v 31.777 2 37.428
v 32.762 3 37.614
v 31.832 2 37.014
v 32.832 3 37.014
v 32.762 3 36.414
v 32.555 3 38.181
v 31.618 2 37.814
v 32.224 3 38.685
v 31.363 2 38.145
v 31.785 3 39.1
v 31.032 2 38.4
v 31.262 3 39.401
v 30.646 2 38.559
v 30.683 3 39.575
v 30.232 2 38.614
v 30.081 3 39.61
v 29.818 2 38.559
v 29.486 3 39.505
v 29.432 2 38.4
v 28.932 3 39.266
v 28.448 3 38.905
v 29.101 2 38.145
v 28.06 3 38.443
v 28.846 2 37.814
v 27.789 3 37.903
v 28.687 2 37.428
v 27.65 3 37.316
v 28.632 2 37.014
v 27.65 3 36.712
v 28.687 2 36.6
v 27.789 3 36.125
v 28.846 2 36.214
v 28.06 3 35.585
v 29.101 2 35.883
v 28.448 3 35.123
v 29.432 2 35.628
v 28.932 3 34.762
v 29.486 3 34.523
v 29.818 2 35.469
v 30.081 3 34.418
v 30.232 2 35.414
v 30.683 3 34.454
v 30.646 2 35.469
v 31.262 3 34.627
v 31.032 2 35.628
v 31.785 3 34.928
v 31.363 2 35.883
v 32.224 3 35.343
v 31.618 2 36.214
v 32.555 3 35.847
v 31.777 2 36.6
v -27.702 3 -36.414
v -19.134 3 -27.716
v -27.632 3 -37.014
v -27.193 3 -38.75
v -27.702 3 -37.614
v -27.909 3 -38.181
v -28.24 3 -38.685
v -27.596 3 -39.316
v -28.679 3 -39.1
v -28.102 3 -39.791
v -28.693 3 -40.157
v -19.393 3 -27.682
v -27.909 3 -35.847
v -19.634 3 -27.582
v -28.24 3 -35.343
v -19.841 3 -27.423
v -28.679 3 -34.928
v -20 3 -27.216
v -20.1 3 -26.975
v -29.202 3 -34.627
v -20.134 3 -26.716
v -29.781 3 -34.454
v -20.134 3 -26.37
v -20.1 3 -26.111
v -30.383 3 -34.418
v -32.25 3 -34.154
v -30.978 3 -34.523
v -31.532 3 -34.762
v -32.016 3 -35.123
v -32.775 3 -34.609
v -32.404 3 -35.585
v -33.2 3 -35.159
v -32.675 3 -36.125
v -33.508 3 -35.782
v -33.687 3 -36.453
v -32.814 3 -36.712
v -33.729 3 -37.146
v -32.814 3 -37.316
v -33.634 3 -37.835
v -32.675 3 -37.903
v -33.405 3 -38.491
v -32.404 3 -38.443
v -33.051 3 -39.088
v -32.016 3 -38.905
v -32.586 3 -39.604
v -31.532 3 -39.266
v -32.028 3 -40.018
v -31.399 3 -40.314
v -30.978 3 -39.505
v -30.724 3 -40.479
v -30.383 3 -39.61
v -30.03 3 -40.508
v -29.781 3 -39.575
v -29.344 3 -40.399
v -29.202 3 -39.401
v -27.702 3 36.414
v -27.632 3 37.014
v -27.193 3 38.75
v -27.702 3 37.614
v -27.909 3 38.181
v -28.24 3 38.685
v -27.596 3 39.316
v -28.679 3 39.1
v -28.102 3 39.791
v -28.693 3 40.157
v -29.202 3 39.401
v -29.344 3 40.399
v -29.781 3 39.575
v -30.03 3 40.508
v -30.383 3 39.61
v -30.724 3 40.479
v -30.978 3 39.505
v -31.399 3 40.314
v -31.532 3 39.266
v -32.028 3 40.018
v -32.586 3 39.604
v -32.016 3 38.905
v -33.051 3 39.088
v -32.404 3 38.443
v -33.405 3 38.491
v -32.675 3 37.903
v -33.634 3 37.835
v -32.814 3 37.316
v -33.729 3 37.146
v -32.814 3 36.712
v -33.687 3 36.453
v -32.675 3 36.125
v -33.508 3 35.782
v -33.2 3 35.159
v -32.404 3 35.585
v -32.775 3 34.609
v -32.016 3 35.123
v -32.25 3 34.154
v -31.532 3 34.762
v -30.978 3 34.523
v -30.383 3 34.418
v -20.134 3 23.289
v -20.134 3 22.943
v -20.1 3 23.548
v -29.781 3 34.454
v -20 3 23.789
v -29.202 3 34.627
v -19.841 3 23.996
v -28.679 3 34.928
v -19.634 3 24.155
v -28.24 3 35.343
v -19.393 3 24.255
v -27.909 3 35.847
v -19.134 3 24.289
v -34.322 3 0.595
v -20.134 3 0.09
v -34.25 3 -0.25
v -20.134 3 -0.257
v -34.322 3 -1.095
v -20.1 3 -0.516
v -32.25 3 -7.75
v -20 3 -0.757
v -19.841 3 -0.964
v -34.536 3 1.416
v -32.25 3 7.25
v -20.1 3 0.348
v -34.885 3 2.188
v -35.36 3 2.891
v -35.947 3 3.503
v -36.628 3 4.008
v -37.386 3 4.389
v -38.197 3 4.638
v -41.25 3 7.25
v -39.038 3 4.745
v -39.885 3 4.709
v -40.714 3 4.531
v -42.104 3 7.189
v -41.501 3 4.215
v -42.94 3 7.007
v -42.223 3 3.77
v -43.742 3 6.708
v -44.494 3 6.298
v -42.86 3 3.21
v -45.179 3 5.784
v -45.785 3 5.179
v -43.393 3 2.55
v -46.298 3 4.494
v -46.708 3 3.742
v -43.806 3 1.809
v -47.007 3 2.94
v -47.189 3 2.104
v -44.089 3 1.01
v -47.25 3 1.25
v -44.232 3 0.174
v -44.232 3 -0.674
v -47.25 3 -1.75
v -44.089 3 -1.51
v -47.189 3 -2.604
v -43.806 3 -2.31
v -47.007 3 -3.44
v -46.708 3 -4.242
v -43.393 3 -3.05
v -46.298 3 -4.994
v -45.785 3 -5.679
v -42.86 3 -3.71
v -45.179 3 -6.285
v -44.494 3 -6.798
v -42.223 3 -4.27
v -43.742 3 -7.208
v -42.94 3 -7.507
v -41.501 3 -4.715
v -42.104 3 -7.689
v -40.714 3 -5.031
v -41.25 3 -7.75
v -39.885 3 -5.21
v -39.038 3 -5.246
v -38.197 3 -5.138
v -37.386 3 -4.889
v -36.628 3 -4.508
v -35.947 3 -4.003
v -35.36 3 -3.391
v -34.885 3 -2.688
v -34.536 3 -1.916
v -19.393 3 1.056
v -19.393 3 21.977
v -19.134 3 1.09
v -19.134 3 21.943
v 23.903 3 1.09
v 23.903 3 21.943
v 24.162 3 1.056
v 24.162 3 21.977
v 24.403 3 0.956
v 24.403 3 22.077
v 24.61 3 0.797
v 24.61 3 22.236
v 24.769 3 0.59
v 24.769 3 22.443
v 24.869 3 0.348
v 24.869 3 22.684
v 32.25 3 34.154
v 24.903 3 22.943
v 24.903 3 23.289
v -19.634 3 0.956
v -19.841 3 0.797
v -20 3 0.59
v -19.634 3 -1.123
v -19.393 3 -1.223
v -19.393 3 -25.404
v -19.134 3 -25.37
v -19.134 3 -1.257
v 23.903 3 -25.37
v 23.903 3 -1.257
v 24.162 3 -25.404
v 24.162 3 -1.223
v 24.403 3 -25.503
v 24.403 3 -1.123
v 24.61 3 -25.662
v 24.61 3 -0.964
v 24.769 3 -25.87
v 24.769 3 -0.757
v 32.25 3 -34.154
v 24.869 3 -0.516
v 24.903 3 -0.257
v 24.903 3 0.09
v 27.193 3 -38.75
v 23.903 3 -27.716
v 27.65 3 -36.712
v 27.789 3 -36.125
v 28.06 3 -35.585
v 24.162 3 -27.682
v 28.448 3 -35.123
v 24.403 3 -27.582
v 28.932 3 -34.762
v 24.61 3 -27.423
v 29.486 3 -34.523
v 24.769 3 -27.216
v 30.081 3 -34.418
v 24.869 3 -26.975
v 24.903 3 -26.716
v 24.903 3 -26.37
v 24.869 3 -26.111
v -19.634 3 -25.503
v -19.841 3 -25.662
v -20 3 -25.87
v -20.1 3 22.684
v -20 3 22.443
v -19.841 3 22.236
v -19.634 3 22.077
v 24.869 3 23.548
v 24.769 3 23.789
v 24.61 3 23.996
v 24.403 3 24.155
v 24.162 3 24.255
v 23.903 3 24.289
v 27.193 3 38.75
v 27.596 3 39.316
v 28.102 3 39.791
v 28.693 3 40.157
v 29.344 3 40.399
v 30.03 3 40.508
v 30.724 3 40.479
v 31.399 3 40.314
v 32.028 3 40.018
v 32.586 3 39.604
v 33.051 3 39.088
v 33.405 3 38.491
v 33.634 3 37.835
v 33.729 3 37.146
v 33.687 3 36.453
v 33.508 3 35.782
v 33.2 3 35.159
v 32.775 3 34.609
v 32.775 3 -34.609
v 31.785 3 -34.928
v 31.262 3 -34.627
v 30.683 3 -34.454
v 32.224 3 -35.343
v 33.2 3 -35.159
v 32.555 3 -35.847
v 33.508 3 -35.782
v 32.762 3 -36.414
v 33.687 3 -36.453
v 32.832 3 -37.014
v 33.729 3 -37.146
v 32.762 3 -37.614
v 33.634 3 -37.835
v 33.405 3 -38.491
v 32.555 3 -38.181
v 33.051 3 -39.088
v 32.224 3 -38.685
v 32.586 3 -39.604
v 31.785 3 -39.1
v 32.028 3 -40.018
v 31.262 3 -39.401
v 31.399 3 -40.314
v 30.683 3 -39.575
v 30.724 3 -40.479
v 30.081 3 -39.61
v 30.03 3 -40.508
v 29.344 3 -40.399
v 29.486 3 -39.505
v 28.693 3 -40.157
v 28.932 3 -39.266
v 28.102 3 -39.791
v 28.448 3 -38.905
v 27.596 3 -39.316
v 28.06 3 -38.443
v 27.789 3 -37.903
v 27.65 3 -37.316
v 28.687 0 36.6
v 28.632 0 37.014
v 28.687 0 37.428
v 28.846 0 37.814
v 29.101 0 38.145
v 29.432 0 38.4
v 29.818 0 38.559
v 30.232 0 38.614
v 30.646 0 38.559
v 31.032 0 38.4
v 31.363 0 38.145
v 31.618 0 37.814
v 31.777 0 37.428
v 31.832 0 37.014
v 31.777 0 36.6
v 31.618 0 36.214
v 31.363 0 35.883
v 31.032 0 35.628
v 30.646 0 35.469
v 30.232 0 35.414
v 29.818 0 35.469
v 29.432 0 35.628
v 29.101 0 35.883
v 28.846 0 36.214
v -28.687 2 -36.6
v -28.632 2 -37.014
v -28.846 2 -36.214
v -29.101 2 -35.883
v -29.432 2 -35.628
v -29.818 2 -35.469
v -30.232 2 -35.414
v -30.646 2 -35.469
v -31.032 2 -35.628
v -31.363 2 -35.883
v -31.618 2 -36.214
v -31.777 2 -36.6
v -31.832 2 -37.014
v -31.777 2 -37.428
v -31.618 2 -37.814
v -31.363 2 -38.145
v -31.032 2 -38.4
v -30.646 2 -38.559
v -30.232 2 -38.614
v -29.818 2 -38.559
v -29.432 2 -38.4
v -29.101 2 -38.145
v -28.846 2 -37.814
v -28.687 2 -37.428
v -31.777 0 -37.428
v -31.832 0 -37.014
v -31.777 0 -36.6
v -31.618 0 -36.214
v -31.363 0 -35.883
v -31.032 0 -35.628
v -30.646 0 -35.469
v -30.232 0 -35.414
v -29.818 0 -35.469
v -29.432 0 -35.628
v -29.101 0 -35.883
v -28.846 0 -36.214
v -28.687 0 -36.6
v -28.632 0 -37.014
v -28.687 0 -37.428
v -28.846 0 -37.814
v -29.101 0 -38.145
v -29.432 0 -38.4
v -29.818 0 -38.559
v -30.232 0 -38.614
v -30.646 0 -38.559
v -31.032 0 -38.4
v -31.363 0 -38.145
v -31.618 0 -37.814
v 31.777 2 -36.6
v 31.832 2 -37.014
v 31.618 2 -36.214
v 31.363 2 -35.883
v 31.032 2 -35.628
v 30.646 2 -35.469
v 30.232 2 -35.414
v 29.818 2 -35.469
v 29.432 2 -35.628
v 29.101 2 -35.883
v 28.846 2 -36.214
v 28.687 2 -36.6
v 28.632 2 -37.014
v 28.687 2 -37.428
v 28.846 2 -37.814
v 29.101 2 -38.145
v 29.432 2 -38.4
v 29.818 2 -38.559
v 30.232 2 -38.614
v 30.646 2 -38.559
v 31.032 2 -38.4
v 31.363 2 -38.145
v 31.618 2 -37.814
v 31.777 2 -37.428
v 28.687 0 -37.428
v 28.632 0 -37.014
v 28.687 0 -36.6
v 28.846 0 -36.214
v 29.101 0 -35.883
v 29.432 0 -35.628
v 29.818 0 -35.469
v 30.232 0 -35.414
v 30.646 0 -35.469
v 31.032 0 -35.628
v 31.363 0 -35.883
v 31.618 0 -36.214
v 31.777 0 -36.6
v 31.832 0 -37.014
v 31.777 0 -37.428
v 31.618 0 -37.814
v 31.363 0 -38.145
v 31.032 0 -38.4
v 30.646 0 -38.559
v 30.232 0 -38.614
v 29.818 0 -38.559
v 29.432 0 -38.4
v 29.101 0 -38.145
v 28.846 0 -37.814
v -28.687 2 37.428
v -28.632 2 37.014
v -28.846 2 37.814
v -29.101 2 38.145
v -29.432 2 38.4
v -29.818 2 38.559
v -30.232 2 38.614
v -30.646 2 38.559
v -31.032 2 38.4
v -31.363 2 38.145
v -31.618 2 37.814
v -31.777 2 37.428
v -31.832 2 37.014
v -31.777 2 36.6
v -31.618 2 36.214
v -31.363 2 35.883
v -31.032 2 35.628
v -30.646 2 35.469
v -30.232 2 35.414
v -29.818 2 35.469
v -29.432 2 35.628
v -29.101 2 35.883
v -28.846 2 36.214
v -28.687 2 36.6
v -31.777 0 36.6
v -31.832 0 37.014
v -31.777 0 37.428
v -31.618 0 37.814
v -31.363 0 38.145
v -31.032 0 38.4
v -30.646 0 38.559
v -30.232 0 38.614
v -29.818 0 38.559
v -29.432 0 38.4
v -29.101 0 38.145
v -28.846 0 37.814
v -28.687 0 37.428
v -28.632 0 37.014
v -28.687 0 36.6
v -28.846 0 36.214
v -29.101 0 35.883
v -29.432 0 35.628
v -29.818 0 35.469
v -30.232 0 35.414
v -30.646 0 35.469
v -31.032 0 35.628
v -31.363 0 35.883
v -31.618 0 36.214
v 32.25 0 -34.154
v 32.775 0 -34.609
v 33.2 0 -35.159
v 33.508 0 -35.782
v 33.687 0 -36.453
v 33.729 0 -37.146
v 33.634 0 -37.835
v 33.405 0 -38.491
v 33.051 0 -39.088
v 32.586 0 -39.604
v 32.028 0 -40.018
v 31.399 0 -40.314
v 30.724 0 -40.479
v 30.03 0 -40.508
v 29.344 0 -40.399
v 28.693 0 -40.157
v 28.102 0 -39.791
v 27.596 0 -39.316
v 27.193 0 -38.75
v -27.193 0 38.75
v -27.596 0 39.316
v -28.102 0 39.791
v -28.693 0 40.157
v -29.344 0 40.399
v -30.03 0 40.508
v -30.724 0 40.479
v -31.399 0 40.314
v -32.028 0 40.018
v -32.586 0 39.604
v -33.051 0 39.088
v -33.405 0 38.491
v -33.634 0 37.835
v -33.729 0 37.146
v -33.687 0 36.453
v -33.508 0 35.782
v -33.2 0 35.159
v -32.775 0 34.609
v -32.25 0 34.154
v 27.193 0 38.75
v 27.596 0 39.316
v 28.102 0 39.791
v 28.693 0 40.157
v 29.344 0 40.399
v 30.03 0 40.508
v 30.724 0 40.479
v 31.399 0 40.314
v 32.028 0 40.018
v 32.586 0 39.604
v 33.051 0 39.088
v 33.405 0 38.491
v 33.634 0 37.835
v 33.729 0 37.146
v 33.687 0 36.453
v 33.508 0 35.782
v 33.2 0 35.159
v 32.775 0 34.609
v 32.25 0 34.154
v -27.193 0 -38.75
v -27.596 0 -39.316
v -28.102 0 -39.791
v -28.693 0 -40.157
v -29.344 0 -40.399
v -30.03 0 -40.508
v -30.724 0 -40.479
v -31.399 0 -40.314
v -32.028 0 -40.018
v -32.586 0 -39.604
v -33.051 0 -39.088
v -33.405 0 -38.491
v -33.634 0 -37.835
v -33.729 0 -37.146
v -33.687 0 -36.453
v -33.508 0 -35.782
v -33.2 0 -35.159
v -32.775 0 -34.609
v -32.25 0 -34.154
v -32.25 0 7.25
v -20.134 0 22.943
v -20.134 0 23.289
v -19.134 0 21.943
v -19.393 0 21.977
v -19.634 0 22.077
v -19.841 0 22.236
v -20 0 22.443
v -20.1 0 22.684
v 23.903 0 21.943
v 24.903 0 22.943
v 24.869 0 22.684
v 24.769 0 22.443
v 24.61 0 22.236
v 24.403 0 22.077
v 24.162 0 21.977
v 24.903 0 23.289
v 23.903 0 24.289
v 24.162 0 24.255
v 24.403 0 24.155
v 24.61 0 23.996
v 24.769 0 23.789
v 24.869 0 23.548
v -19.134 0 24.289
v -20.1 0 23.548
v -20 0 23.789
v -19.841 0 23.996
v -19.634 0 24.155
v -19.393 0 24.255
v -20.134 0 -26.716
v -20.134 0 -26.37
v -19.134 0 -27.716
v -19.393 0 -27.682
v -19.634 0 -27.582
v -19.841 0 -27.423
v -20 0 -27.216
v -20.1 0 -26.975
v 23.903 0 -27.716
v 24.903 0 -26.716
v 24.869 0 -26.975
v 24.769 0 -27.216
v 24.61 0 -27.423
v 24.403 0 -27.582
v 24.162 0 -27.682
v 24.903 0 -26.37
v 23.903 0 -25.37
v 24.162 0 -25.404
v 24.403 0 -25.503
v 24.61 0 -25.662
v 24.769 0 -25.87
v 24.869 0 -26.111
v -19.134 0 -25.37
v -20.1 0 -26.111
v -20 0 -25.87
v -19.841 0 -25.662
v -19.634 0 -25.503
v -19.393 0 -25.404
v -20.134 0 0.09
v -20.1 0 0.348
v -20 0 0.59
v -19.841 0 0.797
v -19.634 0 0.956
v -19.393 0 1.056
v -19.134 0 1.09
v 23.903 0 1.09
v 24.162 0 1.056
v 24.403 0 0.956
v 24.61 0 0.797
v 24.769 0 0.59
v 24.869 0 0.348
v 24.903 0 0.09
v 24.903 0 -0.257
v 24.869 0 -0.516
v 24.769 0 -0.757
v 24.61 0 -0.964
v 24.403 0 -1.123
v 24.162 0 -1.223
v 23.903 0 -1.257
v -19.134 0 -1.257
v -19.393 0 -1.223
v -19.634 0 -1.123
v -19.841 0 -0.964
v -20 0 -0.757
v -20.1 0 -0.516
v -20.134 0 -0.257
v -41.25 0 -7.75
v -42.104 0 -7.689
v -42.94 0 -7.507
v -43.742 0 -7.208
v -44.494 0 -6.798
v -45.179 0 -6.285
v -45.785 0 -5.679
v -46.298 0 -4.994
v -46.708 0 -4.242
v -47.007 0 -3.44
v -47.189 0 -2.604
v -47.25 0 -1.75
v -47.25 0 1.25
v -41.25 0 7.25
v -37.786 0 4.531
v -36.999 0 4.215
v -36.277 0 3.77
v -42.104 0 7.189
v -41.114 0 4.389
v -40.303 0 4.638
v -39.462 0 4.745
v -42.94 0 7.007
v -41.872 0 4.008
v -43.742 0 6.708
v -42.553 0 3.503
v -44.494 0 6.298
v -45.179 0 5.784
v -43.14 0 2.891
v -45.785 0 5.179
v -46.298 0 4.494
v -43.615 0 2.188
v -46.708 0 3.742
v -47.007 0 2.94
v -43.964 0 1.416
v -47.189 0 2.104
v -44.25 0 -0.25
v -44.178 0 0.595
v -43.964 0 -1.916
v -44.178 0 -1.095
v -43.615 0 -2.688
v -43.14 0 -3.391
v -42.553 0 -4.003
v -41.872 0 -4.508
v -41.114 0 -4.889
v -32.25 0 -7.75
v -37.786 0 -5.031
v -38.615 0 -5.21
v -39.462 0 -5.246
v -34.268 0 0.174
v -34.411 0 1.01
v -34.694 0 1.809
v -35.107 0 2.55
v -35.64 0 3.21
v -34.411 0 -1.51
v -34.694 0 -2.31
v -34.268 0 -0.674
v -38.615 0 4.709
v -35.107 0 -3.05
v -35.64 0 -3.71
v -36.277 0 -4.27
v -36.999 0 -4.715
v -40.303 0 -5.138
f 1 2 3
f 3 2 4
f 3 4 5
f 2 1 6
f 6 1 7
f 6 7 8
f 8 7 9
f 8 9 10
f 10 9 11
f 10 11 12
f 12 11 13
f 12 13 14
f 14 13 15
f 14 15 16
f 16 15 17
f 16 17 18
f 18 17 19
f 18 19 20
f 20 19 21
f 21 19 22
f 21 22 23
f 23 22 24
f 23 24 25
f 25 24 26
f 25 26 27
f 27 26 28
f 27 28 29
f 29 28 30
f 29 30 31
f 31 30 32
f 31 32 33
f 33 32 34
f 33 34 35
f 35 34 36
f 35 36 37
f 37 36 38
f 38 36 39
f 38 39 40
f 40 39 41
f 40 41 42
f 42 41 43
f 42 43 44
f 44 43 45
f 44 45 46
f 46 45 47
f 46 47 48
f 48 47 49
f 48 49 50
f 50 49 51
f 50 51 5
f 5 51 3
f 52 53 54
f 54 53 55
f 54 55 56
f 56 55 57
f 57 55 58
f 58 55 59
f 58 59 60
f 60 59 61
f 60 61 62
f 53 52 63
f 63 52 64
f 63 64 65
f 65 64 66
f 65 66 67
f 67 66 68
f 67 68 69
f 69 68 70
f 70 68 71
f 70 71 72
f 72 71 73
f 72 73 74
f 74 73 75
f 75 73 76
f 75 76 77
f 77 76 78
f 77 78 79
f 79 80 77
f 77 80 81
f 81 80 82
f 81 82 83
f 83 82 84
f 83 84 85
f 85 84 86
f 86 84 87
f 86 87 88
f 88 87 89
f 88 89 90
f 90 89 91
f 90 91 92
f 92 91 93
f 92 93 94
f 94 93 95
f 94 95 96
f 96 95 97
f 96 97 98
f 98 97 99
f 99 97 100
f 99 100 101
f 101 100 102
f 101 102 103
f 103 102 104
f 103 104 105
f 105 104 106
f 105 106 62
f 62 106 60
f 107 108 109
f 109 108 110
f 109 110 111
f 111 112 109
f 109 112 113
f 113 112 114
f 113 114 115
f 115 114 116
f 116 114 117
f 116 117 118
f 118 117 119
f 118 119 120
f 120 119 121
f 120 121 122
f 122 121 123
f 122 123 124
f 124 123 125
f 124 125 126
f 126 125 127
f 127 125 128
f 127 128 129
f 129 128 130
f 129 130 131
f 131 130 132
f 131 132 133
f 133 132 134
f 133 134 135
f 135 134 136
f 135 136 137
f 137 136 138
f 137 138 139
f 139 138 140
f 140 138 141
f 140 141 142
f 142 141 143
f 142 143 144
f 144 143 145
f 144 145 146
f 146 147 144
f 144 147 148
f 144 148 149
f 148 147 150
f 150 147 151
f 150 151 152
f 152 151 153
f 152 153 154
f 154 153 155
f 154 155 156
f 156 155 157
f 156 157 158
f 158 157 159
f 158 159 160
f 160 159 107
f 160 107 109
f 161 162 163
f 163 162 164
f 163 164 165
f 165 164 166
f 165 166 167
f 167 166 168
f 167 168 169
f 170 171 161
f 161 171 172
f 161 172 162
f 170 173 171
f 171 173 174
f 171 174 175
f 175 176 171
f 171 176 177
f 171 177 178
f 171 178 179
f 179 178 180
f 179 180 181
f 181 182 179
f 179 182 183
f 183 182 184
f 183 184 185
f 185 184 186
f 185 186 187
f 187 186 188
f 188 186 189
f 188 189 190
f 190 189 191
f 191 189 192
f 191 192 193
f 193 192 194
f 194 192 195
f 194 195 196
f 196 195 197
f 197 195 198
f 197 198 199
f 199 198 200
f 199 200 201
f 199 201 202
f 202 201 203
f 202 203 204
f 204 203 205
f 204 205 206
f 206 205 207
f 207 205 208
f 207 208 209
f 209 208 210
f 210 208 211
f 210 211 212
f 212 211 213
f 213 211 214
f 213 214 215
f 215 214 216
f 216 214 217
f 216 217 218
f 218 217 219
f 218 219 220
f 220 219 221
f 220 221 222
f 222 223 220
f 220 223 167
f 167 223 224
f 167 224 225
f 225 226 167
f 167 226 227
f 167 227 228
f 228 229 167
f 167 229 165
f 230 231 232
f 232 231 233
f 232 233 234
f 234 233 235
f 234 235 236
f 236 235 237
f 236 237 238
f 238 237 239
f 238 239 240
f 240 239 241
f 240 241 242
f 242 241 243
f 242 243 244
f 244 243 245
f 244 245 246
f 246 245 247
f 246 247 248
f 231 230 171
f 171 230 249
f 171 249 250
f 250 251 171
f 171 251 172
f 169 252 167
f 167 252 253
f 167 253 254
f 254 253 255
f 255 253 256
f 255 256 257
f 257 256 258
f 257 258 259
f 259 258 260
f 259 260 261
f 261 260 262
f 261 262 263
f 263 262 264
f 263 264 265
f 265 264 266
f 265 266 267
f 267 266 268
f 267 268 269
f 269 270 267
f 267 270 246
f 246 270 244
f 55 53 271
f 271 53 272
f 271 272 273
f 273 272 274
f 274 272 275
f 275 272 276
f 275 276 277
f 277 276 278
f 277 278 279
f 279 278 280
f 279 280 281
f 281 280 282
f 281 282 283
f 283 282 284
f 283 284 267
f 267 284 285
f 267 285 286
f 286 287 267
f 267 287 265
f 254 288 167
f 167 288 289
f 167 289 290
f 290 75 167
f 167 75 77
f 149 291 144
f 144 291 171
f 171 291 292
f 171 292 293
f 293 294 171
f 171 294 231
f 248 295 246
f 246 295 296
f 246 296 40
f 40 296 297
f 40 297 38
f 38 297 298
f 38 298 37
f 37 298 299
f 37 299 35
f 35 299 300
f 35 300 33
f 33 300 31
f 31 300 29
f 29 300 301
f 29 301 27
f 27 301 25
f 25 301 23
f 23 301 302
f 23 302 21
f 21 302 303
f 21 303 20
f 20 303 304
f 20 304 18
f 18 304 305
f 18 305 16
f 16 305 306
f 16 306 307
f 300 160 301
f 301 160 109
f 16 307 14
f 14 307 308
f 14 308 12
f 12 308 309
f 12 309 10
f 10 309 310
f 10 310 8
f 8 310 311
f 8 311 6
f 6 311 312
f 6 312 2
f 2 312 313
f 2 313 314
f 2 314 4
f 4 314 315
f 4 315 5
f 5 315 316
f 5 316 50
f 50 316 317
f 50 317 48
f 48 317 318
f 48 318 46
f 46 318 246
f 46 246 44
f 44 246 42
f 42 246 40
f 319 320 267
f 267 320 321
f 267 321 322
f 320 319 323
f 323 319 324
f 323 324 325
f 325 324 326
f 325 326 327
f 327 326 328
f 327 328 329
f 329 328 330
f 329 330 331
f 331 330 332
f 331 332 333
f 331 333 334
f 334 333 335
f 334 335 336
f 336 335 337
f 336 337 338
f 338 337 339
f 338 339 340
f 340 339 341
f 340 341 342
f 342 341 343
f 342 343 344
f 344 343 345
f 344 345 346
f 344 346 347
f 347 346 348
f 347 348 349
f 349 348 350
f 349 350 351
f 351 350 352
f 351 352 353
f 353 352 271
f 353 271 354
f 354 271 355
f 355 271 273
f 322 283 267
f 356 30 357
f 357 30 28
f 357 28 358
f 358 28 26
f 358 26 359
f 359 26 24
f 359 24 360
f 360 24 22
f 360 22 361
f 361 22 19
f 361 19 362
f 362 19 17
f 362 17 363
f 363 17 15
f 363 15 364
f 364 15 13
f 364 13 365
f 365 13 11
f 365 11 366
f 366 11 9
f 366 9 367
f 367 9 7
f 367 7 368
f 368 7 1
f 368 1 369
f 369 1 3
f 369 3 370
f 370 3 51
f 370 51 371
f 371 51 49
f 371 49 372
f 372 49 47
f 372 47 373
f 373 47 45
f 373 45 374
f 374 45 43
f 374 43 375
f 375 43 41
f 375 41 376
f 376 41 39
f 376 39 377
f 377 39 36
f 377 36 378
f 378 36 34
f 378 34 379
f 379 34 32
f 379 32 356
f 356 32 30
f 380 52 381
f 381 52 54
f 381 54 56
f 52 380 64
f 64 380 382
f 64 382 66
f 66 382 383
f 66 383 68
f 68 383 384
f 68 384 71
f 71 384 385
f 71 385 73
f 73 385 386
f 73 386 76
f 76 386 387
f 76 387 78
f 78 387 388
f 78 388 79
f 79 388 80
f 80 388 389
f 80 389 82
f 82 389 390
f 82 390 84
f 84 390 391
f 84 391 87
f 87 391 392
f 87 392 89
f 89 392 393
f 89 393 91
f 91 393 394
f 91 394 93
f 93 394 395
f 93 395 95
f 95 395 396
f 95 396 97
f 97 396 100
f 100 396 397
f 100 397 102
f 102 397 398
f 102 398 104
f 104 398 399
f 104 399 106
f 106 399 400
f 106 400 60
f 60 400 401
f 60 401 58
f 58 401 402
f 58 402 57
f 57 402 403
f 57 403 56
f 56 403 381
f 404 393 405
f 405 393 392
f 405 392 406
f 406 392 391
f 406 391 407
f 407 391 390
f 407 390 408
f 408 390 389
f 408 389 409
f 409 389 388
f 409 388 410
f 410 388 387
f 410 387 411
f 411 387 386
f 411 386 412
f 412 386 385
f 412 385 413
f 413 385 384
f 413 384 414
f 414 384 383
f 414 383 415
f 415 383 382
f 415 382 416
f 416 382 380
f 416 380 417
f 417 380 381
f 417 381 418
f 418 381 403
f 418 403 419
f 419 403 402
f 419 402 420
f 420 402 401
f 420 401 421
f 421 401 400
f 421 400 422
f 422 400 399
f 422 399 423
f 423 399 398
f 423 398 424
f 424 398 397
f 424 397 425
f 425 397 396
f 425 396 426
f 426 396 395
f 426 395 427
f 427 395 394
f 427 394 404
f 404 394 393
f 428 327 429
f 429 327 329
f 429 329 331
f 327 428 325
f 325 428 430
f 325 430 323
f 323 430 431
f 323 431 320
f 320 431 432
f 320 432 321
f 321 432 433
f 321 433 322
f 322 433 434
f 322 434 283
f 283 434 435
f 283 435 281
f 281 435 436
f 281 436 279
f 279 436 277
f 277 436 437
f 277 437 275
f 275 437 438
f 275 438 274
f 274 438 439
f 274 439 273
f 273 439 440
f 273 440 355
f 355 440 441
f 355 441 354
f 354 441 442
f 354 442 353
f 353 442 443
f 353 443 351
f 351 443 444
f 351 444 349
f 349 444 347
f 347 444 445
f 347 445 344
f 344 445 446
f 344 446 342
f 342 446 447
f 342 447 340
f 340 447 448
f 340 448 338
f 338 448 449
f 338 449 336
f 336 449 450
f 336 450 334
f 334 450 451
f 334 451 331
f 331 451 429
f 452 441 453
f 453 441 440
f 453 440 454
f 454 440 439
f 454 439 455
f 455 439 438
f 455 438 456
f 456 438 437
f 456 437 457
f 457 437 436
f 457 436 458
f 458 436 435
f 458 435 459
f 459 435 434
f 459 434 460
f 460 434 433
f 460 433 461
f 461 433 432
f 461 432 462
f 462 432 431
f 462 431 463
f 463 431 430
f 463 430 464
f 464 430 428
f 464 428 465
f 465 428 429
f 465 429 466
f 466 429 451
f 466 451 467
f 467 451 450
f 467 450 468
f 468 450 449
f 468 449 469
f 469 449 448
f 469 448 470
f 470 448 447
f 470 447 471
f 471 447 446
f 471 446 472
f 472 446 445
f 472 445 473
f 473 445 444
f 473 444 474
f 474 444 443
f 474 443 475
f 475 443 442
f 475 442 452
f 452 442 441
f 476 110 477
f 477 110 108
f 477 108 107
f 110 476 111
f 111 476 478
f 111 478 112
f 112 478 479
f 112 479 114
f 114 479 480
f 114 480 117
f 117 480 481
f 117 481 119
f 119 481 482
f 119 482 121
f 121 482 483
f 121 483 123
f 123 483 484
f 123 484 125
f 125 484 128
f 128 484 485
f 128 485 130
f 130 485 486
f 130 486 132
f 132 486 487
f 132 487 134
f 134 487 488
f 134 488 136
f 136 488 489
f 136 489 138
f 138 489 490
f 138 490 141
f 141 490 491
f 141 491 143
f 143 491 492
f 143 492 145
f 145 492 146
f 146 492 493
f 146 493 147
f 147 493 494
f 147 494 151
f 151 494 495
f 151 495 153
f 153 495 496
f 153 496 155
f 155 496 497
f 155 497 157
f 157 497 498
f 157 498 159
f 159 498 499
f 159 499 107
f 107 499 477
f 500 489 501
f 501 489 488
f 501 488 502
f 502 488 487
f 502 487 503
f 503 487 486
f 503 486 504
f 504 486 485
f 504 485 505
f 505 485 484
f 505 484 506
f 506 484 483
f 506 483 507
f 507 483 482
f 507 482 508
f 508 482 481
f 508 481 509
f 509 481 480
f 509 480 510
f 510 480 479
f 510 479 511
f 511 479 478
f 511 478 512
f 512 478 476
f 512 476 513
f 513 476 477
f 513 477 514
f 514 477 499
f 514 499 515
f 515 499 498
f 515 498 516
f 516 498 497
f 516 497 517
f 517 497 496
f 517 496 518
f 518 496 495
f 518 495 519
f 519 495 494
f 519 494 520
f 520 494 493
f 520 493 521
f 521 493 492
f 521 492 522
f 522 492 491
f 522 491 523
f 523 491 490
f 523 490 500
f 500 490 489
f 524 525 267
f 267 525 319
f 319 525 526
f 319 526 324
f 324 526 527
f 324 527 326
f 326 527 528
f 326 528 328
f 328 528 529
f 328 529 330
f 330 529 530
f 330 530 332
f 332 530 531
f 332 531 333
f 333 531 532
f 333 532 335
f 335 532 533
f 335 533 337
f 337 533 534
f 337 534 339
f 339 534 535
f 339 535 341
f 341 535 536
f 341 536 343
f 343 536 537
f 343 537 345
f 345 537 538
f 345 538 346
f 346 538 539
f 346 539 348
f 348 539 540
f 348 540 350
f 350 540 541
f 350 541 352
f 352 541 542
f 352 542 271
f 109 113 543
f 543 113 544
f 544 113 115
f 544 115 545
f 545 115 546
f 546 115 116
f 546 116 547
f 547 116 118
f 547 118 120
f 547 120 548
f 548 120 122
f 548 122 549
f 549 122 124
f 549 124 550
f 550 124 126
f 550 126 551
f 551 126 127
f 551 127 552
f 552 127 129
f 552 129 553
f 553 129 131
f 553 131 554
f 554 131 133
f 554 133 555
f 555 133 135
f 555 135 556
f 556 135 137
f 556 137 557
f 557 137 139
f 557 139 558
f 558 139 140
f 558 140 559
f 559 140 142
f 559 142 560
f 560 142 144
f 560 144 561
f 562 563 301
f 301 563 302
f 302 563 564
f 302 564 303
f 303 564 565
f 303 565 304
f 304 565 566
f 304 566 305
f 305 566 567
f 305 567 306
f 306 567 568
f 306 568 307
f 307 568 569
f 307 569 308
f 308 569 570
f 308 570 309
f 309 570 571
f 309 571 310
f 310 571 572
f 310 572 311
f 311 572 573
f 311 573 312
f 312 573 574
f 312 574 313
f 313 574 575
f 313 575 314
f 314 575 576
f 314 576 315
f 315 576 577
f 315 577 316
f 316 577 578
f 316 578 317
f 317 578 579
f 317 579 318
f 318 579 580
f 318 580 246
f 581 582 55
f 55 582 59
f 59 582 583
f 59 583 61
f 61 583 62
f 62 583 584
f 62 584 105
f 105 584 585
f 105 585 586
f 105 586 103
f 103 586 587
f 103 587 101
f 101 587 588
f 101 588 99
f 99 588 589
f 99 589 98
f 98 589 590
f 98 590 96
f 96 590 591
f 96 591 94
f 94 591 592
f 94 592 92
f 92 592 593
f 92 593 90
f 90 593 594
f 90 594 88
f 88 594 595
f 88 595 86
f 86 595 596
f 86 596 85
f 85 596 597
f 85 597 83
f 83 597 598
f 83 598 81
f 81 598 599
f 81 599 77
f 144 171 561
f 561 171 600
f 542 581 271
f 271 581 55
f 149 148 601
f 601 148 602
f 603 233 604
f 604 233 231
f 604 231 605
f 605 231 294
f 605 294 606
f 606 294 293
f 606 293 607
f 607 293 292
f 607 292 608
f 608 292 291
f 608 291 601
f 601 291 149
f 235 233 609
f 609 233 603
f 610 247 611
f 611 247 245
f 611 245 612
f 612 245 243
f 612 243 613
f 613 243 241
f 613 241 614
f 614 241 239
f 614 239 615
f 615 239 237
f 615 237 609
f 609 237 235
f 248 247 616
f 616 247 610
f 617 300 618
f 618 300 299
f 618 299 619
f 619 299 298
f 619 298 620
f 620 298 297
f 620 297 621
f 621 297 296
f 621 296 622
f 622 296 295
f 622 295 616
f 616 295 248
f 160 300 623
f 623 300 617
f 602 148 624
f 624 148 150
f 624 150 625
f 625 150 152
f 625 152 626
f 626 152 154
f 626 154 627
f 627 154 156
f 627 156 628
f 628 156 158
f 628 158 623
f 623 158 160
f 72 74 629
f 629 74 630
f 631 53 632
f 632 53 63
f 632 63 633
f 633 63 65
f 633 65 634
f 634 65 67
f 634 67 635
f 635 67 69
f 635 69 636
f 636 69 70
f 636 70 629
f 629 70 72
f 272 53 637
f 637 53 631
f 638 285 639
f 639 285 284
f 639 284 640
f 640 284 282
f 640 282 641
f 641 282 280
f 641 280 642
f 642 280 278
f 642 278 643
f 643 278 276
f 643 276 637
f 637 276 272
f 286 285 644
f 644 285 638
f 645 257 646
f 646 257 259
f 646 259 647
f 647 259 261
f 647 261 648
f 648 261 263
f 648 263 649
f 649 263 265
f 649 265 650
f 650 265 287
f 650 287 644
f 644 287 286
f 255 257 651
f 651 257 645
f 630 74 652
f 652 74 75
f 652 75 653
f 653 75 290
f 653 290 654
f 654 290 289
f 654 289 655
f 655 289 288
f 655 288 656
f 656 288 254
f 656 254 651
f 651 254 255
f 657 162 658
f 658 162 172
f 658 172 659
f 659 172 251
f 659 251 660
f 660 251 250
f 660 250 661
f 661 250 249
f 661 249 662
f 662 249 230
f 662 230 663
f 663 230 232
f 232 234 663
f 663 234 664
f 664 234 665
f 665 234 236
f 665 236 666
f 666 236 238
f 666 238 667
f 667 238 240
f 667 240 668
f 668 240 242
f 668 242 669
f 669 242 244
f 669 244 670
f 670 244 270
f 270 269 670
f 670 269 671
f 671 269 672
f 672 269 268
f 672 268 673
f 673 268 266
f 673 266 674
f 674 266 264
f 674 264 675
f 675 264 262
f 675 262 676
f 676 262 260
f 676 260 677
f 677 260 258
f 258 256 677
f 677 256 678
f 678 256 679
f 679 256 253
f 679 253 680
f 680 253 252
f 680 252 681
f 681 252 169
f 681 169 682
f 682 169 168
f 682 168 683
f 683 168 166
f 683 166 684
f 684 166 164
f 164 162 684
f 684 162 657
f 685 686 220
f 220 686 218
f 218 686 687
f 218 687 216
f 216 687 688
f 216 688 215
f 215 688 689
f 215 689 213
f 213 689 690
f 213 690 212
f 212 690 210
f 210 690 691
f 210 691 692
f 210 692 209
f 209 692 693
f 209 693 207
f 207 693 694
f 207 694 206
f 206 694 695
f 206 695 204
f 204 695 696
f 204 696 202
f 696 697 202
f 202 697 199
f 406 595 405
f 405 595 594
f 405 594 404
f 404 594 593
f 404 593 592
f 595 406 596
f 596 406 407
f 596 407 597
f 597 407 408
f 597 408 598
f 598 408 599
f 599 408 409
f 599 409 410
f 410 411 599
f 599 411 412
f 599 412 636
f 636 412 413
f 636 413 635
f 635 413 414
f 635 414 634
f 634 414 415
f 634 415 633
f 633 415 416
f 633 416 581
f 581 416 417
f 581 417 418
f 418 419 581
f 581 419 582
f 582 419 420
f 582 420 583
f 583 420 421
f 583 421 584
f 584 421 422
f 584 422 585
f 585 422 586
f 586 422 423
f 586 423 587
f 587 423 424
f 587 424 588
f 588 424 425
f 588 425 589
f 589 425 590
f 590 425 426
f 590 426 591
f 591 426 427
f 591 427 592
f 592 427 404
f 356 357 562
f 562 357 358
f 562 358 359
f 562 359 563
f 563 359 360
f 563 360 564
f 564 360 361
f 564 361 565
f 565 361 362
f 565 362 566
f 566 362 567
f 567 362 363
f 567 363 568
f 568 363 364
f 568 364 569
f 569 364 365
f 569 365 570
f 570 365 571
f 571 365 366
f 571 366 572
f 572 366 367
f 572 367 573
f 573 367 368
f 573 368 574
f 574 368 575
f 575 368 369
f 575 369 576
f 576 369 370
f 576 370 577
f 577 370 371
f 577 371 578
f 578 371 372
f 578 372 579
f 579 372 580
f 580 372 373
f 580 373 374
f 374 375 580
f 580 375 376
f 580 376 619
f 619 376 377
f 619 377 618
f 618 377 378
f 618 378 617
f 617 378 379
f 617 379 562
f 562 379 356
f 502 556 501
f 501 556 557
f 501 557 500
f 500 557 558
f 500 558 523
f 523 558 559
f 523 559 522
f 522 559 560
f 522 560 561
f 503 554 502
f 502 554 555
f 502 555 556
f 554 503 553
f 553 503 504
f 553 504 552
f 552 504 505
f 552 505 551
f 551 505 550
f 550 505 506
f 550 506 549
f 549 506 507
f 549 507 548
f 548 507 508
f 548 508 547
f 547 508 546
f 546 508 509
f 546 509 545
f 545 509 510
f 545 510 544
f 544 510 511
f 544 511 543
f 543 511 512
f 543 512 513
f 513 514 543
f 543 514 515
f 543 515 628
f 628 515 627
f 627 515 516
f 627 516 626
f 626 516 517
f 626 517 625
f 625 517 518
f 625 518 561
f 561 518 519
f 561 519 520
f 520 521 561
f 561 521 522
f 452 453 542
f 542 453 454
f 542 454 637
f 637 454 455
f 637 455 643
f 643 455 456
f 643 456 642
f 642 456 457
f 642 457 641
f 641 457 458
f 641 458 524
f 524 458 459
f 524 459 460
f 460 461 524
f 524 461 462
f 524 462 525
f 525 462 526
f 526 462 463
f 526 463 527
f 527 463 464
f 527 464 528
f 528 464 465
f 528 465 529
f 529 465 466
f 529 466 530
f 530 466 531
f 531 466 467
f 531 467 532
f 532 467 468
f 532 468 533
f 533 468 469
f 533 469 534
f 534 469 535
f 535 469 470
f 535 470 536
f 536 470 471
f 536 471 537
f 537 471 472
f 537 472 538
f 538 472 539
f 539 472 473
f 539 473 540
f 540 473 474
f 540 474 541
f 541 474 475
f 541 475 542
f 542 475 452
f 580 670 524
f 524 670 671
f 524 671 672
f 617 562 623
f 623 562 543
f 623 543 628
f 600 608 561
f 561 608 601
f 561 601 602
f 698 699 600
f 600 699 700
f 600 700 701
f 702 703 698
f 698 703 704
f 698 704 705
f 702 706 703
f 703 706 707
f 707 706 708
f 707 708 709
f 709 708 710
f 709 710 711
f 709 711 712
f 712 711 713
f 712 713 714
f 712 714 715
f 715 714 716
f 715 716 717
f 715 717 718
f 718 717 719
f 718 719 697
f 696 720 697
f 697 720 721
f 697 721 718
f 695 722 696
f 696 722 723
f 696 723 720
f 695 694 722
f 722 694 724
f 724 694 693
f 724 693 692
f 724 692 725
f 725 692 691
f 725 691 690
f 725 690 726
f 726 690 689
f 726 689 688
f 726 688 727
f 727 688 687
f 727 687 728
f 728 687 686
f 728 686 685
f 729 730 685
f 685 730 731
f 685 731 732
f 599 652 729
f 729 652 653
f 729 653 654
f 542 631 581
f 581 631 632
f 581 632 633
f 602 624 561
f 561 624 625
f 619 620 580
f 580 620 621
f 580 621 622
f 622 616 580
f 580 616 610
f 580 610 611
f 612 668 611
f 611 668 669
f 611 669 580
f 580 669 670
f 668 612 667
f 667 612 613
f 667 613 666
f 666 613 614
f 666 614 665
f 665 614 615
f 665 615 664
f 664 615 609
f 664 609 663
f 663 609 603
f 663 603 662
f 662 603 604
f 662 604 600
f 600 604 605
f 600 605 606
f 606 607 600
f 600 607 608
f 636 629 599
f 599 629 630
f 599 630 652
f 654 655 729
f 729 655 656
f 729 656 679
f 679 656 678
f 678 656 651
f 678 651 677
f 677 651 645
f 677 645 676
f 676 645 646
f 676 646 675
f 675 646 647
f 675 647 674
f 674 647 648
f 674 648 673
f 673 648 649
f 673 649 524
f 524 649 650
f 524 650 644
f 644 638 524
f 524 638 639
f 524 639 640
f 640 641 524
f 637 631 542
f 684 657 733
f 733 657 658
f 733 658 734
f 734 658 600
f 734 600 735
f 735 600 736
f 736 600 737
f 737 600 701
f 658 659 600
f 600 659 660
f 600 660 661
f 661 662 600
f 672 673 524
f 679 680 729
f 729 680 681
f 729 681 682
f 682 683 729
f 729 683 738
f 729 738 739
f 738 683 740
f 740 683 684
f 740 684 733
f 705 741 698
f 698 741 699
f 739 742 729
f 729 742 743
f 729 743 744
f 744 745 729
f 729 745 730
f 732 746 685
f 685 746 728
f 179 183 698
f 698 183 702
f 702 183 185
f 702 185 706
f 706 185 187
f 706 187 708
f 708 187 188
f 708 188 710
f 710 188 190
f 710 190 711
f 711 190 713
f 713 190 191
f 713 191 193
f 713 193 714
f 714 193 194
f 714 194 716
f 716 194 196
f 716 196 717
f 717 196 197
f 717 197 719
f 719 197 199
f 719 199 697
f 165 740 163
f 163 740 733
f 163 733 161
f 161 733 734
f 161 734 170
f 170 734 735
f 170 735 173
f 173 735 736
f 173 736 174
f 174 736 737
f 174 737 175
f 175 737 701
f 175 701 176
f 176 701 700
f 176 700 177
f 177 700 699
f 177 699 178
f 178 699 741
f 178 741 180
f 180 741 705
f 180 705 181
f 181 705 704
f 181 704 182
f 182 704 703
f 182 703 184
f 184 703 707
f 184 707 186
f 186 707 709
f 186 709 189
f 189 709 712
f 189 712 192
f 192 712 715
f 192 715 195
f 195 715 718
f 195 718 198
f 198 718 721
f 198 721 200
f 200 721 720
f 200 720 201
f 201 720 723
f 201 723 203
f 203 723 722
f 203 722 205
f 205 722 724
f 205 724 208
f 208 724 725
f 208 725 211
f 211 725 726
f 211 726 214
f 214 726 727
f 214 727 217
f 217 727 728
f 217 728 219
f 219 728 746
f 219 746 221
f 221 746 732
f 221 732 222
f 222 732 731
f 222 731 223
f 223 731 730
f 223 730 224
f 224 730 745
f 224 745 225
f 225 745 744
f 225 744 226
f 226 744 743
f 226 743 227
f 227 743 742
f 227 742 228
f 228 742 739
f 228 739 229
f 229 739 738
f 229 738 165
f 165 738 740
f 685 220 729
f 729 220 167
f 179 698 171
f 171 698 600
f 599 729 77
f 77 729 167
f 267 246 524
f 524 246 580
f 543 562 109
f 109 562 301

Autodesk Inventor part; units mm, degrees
ref_plane "YZ Plane" through (0, 0, 0) normal (1, 0, 0) x (0, 1, 0)
ref_plane "XZ Plane" through (0, 0, 0) normal (0, 1, 0) x (-1, 0, 0)
ref_plane "XY Plane" through (0, 0, 0) normal (0, 0, 1) x (1, 0, 0)
sketch "Sketch1" plane through (0, 0, 0) normal (0, 1, 0) x (-1, 0, 0)
  line L0 (-32.25, -38.75) -> (32.25, -38.75)
  line L1 (32.25, -38.75) -> (32.25, 38.75)
  line L2 (32.25, 38.75) -> (-32.25, 38.75)
  line L3 (-32.25, 38.75) -> (-32.25, -38.75)
  line L4 (-32.25, -38.75) -> (32.25, 38.75) construction
  line L5 (32.25, -38.75) -> (-32.25, 38.75) construction
  point P0 (0, 0)
  dimension "d0" = 64.5
  dimension "d1" = 77.5
extrude "Extrusion1" add sketch "Sketch1" along normal blind 3
sketch "Sketch4" plane through (-32.25, 0, -38.75) normal (-1, 0, 0) x (0, 0, 1)
  line L0 (0, 3) -> (77.5, 3) projected
  line L1 (0, 0) -> (77.5, 0) projected
  line L2 (31, 3) -> (46, 3)
  line L3 (46, 3) -> (46, 0)
  line L4 (46, 0) -> (31, 0)
  line L5 (31, 0) -> (31, 3)
  line L6 (0, 0) -> (0, 3) projected
  line L7 (77.5, 0) -> (77.5, 3) projected
  point P0 (38.75, 0)
  dimension "d17" = 15
  dimension "d18" = 31
  dimension "d19" = 31.5
extrude "Extrusion3" add sketch "Sketch4" along normal blind 15 contours L0 L3 L1 L5
sketch "Sketch5" plane through (0, 3, 0) normal (0, 1, 0) x (1, 0, 0)
  circle A0 centre (-39.25, 0.25) radius 5
  line L0 (-32.25, -7.25) -> (-47.25, -7.25) projected
  line L1 (-32.25, 7.75) -> (-47.25, 7.75) projected
  line L2 (-47.25, -7.25) -> (-47.25, 7.75) projected
  point P0 (0, 0)
  dimension "d22" = 10
  dimension "d34" = 7.5
  dimension "d35" = 7.5
  dimension "d36" = 8
extrude "Extrusion4" cut sketch "Sketch5" against normal up to surface (3 mm away)
fillet "Fillet1" radius 6 2 edges at (-47.25, 1.5, 7.25) (-47.25, 1.5, -7.75)
sketch "Sketch6" plane through (0, 0, 0) normal (0, -1, 0) x (1, 0, 0)
  line L0 (-19.1342, -27.716) -> (23.9028, -27.716)
  line L1 (24.9028, -26.716) -> (24.9028, -26.3695)
  line L2 (23.9028, -25.3695) -> (-19.1342, -25.3695)
  line L3 (-20.1342, -26.3695) -> (-20.1342, -26.716)
  arc A0 (-20.1342, -26.716) -> (-19.1342, -27.716) centre (-19.1342, -26.716) ccw
  arc A1 (-19.1342, -25.3695) -> (-20.1342, -26.3695) centre (-19.1342, -26.3695) ccw
  arc A2 (23.9028, -27.716) -> (24.9028, -26.716) centre (23.9028, -26.716) ccw
  arc A3 (24.9028, -26.3695) -> (23.9028, -25.3695) centre (23.9028, -26.3695) ccw
  line L4 (-19.1342, -1.2568) -> (23.9028, -1.2568)
  line L5 (24.9028, -0.2568) -> (24.9028, 0.0896)
  line L6 (23.9028, 1.0896) -> (-19.1342, 1.0896)
  line L7 (-20.1342, 0.0896) -> (-20.1342, -0.2568)
  arc A4 (-20.1342, -0.2568) -> (-19.1342, -1.2568) centre (-19.1342, -0.2568) ccw
  arc A5 (-19.1342, 1.0896) -> (-20.1342, 0.0896) centre (-19.1342, 0.0896) ccw
  arc A6 (23.9028, -1.2568) -> (24.9028, -0.2568) centre (23.9028, -0.2568) ccw
  arc A7 (24.9028, 0.0896) -> (23.9028, 1.0896) centre (23.9028, 0.0896) ccw
  line L8 (-19.1342, 21.9427) -> (23.9028, 21.9427)
  line L9 (24.9028, 22.9427) -> (24.9028, 23.2892)
  line L10 (23.9028, 24.2892) -> (-19.1342, 24.2892)
  line L11 (-20.1342, 23.2892) -> (-20.1342, 22.9427)
  arc A8 (-20.1342, 22.9427) -> (-19.1342, 21.9427) centre (-19.1342, 22.9427) ccw
  arc A9 (-19.1342, 24.2892) -> (-20.1342, 23.2892) centre (-19.1342, 23.2892) ccw
  arc A10 (23.9028, 21.9427) -> (24.9028, 22.9427) centre (23.9028, 22.9427) ccw
  arc A11 (24.9028, 23.2892) -> (23.9028, 24.2892) centre (23.9028, 23.2892) ccw
  point P0 (0, 0)
  dimension "d27" = 1
  dimension "d28" = 1
  dimension "d29" = 1
extrude "Extrusion5" cut sketch "Sketch6" against normal up to surface (3 mm away)
sketch "Sketch7" plane through (0, 3, 0) normal (0, 1, 0) x (1, 0, 0)
  circle A0 centre (-30.232, -37.014) radius 3.5
  line L0 (-32.25, -38.75) -> (32.25, -38.75) projected
  line L1 (-32.25, -7.25) -> (-32.25, -38.75) projected
  circle A1 centre (30.232, -37.014) radius 3.5
  circle A2 centre (-30.232, 37.014) radius 3.5
  circle A3 centre (30.232, 37.014) radius 3.5
  line L2 (32.25, 38.75) -> (-32.25, 38.75) projected
  line L3 (-32.25, 38.75) -> (-32.25, 7.75) projected
  line L4 (32.25, -38.75) -> (32.25, 38.75) projected
  point P0 (0, 0)
  dimension "d37" = 7
  dimension "d38" = 1.736
  dimension "d39" = 2.018
  dimension "d40" = 7
  dimension "d41" = 7
  dimension "d42" = 7
  dimension "d43" = 1.736
  dimension "d44" = 2.018
  dimension "d45" = 1.736
  dimension "d46" = 2.018
  dimension "d47" = 1.736
  dimension "d48" = 2.018
extrude "Extrusion6" add sketch "Sketch7" against normal up to surface (3 mm away)
sketch "Sketch8" plane through (0, 3, 0) normal (0, 1, 0) x (1, 0, 0)
  circle A0 centre (30.232, -37.014) radius 1.6
  circle A1 centre (-30.232, -37.014) radius 1.6
  circle A2 centre (-30.232, 37.014) radius 1.6
  circle A3 centre (30.232, 37.014) radius 1.6
  point P0 (0, 0)
  dimension "d51" = 3.2
  dimension "d52" = 3.2
  dimension "d53" = 3.2
  dimension "d54" = 3.2
extrude "Extrusion7" cut sketch "Sketch8" against normal up to surface (3 mm away)
chamfer "Chamfer1" distance 1 angle 45 4 edges at (-31.832, 3, 37.014) (28.632, 3, -37.014) (-31.832, 3, -37.014) (28.632, 3, 37.014)
properties part number "_3DPrint"
